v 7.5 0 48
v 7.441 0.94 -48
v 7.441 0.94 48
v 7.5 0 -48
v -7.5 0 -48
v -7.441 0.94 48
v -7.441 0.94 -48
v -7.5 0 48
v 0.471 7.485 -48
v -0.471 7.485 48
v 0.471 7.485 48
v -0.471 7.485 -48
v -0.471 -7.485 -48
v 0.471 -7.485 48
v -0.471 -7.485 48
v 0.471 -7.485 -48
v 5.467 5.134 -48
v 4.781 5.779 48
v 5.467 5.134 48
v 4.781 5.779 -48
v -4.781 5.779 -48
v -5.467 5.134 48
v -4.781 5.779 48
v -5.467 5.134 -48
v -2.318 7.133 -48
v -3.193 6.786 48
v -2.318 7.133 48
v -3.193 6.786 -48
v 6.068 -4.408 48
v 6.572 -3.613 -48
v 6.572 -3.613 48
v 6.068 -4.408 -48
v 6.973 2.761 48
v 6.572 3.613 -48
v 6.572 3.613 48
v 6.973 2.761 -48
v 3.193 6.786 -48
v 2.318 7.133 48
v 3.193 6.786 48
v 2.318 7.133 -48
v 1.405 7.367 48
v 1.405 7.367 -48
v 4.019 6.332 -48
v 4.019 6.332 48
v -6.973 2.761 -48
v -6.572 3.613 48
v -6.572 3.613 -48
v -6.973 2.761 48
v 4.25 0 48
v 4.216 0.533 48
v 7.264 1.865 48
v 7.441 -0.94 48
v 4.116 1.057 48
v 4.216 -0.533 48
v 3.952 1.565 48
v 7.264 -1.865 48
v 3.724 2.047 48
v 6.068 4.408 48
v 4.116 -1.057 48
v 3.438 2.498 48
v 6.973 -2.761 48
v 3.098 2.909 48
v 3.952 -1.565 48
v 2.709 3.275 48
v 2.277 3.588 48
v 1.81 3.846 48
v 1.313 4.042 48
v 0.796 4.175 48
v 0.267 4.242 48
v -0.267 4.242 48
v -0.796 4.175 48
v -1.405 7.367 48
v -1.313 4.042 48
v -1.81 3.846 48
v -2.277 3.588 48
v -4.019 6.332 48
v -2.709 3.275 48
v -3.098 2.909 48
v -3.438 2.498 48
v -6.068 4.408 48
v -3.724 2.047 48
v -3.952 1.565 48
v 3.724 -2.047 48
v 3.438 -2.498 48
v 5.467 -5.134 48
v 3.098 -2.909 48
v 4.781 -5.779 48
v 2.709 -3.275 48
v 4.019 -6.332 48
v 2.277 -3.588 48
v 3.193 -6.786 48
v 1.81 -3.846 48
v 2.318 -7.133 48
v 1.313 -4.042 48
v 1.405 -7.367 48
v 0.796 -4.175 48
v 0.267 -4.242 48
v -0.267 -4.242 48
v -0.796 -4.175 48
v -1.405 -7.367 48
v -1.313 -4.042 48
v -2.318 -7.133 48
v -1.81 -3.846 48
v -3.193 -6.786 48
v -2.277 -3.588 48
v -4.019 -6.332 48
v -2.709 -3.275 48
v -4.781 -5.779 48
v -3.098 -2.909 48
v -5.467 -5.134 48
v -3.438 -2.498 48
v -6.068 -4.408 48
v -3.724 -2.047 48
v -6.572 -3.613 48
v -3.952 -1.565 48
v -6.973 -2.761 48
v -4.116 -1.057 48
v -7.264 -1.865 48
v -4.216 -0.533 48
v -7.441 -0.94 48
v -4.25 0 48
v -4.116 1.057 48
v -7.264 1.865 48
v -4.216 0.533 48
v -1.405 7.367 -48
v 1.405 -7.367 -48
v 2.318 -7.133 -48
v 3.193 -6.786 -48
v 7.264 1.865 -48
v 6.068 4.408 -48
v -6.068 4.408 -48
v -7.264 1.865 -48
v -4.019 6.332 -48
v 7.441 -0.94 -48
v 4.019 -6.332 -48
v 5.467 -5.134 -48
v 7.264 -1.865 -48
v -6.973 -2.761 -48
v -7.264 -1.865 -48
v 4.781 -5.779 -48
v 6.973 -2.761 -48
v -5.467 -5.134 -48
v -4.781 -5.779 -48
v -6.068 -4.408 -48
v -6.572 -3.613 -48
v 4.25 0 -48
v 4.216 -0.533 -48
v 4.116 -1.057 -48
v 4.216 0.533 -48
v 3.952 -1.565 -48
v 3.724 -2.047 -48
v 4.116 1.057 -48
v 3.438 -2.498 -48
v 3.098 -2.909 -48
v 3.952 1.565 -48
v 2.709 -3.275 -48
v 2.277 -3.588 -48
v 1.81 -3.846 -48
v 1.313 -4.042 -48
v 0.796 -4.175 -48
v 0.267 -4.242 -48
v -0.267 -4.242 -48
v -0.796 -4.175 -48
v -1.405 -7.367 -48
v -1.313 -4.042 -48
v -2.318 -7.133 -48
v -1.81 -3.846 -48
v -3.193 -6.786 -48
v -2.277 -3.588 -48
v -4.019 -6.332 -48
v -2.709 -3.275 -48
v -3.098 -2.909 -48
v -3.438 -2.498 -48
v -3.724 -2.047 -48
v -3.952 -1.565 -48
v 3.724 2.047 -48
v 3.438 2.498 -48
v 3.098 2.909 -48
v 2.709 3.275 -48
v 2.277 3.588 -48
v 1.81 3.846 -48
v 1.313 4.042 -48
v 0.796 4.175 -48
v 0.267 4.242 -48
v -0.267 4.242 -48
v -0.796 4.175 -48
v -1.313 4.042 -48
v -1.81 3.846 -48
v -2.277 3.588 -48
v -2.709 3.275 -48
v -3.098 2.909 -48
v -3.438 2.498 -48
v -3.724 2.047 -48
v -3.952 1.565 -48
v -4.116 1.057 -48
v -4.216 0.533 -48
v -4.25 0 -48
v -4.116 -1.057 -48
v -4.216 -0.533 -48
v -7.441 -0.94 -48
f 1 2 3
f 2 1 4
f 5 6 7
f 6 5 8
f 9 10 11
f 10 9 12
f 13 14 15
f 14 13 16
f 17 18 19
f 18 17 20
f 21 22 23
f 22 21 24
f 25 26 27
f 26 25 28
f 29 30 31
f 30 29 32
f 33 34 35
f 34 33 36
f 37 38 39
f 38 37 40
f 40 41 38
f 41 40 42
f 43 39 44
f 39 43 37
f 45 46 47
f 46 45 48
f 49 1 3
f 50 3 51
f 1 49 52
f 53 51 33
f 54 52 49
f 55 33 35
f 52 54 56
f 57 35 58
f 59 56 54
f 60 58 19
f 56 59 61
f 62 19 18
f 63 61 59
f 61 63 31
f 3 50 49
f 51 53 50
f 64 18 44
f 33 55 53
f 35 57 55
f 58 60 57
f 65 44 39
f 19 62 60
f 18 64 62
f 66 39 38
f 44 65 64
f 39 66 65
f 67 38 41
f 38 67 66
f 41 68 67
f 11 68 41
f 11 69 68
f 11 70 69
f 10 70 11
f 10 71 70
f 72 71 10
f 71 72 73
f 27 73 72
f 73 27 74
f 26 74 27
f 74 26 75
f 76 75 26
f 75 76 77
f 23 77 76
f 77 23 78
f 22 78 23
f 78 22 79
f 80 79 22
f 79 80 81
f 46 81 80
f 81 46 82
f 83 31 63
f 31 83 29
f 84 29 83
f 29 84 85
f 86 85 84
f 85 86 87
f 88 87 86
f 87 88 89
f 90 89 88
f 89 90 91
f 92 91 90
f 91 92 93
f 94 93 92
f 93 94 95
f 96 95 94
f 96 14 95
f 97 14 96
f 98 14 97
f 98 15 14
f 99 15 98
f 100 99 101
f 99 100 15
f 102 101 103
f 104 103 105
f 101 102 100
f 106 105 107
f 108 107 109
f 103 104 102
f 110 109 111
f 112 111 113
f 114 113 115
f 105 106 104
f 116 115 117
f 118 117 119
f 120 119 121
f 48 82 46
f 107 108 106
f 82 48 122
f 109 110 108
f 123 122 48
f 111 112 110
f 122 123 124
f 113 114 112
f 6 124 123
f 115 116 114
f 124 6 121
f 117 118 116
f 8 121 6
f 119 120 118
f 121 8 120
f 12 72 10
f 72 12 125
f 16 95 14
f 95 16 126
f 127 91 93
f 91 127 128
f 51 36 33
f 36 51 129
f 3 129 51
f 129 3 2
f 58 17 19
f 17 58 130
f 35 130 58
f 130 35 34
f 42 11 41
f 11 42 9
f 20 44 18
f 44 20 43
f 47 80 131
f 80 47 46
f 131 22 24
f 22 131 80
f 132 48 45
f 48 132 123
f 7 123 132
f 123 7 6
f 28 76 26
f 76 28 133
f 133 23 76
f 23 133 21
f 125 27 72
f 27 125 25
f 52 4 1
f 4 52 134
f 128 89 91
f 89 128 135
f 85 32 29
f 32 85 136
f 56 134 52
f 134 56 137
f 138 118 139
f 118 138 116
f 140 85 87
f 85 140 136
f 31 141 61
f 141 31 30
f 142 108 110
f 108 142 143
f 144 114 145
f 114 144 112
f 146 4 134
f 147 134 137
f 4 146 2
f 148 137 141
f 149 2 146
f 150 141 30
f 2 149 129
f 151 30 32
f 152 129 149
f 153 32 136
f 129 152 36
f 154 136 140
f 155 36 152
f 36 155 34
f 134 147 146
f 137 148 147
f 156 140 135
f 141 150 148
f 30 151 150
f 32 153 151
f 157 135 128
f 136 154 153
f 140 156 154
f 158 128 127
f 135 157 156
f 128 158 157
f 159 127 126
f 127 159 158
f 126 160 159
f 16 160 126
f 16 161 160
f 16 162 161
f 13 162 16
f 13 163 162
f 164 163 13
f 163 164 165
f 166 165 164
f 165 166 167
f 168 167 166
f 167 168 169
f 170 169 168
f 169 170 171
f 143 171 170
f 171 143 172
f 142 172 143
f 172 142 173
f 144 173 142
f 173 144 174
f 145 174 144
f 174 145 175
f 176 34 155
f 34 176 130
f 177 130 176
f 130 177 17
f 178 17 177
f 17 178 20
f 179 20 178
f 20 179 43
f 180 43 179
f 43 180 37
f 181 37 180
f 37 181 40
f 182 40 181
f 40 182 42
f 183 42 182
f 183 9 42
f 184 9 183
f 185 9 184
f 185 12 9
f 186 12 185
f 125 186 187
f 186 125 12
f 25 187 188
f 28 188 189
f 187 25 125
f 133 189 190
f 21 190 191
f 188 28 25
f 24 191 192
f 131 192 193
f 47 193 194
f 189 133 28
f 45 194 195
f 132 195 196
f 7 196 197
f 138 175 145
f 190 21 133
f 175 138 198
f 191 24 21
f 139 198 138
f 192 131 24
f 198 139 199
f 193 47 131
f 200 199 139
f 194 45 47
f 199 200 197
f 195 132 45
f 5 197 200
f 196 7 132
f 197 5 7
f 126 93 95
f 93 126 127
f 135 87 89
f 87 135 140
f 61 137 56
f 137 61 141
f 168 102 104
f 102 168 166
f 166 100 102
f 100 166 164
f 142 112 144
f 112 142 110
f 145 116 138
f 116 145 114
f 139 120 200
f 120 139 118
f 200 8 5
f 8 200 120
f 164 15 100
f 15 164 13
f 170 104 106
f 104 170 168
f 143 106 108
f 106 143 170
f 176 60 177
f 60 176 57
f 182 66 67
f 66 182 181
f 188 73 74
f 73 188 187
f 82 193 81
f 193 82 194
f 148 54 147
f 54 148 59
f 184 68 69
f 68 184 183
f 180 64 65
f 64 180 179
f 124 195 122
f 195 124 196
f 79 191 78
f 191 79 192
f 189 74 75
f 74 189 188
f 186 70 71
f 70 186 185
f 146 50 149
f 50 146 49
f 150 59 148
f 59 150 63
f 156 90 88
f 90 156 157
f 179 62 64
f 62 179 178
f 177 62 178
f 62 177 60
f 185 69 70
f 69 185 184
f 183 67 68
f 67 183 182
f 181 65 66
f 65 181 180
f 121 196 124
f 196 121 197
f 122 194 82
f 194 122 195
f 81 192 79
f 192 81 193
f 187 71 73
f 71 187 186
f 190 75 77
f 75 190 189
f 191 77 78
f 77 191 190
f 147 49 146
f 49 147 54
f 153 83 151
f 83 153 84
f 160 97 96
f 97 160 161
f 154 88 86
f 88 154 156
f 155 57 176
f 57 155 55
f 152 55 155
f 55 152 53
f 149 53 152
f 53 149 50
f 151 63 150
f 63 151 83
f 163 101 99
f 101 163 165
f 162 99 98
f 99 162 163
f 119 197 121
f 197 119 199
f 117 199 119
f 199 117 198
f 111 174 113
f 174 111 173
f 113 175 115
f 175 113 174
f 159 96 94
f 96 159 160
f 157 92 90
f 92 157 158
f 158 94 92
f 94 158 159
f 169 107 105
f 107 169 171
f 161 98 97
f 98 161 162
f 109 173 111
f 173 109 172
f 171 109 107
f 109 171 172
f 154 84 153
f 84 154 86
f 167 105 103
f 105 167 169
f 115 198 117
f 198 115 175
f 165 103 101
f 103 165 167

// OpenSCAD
$fn = 50;


difference() {
	union() {
		translate(v = [0, 0, -48.0000000000]) {
			cylinder(h = 96, r = 7.5000000000);
		}
	}
	union() {
		translate(v = [0, 0, -100.0000000000]) {
			cylinder(h = 200, r = 4.2500000000);
		}
	}
}
